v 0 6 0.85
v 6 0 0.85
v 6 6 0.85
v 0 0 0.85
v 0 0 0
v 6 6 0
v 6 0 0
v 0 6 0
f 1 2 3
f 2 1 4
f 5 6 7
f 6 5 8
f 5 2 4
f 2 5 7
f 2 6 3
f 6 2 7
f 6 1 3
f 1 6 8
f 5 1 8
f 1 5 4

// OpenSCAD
/* Warning, this is a very basic generator with a lot of approximation 
input data : [QFN, 4EX, 6x6x0.85mm, 36, , B, C04-00241B]
generated by com.zoubworld.electronics.cad.model3d.Basic
Date : Sun Feb 15 10:50:48 CET 2026
*/

//body
color("black")
translate([0,0,0])
cube([6.0,6.0,0.85], center=false);
